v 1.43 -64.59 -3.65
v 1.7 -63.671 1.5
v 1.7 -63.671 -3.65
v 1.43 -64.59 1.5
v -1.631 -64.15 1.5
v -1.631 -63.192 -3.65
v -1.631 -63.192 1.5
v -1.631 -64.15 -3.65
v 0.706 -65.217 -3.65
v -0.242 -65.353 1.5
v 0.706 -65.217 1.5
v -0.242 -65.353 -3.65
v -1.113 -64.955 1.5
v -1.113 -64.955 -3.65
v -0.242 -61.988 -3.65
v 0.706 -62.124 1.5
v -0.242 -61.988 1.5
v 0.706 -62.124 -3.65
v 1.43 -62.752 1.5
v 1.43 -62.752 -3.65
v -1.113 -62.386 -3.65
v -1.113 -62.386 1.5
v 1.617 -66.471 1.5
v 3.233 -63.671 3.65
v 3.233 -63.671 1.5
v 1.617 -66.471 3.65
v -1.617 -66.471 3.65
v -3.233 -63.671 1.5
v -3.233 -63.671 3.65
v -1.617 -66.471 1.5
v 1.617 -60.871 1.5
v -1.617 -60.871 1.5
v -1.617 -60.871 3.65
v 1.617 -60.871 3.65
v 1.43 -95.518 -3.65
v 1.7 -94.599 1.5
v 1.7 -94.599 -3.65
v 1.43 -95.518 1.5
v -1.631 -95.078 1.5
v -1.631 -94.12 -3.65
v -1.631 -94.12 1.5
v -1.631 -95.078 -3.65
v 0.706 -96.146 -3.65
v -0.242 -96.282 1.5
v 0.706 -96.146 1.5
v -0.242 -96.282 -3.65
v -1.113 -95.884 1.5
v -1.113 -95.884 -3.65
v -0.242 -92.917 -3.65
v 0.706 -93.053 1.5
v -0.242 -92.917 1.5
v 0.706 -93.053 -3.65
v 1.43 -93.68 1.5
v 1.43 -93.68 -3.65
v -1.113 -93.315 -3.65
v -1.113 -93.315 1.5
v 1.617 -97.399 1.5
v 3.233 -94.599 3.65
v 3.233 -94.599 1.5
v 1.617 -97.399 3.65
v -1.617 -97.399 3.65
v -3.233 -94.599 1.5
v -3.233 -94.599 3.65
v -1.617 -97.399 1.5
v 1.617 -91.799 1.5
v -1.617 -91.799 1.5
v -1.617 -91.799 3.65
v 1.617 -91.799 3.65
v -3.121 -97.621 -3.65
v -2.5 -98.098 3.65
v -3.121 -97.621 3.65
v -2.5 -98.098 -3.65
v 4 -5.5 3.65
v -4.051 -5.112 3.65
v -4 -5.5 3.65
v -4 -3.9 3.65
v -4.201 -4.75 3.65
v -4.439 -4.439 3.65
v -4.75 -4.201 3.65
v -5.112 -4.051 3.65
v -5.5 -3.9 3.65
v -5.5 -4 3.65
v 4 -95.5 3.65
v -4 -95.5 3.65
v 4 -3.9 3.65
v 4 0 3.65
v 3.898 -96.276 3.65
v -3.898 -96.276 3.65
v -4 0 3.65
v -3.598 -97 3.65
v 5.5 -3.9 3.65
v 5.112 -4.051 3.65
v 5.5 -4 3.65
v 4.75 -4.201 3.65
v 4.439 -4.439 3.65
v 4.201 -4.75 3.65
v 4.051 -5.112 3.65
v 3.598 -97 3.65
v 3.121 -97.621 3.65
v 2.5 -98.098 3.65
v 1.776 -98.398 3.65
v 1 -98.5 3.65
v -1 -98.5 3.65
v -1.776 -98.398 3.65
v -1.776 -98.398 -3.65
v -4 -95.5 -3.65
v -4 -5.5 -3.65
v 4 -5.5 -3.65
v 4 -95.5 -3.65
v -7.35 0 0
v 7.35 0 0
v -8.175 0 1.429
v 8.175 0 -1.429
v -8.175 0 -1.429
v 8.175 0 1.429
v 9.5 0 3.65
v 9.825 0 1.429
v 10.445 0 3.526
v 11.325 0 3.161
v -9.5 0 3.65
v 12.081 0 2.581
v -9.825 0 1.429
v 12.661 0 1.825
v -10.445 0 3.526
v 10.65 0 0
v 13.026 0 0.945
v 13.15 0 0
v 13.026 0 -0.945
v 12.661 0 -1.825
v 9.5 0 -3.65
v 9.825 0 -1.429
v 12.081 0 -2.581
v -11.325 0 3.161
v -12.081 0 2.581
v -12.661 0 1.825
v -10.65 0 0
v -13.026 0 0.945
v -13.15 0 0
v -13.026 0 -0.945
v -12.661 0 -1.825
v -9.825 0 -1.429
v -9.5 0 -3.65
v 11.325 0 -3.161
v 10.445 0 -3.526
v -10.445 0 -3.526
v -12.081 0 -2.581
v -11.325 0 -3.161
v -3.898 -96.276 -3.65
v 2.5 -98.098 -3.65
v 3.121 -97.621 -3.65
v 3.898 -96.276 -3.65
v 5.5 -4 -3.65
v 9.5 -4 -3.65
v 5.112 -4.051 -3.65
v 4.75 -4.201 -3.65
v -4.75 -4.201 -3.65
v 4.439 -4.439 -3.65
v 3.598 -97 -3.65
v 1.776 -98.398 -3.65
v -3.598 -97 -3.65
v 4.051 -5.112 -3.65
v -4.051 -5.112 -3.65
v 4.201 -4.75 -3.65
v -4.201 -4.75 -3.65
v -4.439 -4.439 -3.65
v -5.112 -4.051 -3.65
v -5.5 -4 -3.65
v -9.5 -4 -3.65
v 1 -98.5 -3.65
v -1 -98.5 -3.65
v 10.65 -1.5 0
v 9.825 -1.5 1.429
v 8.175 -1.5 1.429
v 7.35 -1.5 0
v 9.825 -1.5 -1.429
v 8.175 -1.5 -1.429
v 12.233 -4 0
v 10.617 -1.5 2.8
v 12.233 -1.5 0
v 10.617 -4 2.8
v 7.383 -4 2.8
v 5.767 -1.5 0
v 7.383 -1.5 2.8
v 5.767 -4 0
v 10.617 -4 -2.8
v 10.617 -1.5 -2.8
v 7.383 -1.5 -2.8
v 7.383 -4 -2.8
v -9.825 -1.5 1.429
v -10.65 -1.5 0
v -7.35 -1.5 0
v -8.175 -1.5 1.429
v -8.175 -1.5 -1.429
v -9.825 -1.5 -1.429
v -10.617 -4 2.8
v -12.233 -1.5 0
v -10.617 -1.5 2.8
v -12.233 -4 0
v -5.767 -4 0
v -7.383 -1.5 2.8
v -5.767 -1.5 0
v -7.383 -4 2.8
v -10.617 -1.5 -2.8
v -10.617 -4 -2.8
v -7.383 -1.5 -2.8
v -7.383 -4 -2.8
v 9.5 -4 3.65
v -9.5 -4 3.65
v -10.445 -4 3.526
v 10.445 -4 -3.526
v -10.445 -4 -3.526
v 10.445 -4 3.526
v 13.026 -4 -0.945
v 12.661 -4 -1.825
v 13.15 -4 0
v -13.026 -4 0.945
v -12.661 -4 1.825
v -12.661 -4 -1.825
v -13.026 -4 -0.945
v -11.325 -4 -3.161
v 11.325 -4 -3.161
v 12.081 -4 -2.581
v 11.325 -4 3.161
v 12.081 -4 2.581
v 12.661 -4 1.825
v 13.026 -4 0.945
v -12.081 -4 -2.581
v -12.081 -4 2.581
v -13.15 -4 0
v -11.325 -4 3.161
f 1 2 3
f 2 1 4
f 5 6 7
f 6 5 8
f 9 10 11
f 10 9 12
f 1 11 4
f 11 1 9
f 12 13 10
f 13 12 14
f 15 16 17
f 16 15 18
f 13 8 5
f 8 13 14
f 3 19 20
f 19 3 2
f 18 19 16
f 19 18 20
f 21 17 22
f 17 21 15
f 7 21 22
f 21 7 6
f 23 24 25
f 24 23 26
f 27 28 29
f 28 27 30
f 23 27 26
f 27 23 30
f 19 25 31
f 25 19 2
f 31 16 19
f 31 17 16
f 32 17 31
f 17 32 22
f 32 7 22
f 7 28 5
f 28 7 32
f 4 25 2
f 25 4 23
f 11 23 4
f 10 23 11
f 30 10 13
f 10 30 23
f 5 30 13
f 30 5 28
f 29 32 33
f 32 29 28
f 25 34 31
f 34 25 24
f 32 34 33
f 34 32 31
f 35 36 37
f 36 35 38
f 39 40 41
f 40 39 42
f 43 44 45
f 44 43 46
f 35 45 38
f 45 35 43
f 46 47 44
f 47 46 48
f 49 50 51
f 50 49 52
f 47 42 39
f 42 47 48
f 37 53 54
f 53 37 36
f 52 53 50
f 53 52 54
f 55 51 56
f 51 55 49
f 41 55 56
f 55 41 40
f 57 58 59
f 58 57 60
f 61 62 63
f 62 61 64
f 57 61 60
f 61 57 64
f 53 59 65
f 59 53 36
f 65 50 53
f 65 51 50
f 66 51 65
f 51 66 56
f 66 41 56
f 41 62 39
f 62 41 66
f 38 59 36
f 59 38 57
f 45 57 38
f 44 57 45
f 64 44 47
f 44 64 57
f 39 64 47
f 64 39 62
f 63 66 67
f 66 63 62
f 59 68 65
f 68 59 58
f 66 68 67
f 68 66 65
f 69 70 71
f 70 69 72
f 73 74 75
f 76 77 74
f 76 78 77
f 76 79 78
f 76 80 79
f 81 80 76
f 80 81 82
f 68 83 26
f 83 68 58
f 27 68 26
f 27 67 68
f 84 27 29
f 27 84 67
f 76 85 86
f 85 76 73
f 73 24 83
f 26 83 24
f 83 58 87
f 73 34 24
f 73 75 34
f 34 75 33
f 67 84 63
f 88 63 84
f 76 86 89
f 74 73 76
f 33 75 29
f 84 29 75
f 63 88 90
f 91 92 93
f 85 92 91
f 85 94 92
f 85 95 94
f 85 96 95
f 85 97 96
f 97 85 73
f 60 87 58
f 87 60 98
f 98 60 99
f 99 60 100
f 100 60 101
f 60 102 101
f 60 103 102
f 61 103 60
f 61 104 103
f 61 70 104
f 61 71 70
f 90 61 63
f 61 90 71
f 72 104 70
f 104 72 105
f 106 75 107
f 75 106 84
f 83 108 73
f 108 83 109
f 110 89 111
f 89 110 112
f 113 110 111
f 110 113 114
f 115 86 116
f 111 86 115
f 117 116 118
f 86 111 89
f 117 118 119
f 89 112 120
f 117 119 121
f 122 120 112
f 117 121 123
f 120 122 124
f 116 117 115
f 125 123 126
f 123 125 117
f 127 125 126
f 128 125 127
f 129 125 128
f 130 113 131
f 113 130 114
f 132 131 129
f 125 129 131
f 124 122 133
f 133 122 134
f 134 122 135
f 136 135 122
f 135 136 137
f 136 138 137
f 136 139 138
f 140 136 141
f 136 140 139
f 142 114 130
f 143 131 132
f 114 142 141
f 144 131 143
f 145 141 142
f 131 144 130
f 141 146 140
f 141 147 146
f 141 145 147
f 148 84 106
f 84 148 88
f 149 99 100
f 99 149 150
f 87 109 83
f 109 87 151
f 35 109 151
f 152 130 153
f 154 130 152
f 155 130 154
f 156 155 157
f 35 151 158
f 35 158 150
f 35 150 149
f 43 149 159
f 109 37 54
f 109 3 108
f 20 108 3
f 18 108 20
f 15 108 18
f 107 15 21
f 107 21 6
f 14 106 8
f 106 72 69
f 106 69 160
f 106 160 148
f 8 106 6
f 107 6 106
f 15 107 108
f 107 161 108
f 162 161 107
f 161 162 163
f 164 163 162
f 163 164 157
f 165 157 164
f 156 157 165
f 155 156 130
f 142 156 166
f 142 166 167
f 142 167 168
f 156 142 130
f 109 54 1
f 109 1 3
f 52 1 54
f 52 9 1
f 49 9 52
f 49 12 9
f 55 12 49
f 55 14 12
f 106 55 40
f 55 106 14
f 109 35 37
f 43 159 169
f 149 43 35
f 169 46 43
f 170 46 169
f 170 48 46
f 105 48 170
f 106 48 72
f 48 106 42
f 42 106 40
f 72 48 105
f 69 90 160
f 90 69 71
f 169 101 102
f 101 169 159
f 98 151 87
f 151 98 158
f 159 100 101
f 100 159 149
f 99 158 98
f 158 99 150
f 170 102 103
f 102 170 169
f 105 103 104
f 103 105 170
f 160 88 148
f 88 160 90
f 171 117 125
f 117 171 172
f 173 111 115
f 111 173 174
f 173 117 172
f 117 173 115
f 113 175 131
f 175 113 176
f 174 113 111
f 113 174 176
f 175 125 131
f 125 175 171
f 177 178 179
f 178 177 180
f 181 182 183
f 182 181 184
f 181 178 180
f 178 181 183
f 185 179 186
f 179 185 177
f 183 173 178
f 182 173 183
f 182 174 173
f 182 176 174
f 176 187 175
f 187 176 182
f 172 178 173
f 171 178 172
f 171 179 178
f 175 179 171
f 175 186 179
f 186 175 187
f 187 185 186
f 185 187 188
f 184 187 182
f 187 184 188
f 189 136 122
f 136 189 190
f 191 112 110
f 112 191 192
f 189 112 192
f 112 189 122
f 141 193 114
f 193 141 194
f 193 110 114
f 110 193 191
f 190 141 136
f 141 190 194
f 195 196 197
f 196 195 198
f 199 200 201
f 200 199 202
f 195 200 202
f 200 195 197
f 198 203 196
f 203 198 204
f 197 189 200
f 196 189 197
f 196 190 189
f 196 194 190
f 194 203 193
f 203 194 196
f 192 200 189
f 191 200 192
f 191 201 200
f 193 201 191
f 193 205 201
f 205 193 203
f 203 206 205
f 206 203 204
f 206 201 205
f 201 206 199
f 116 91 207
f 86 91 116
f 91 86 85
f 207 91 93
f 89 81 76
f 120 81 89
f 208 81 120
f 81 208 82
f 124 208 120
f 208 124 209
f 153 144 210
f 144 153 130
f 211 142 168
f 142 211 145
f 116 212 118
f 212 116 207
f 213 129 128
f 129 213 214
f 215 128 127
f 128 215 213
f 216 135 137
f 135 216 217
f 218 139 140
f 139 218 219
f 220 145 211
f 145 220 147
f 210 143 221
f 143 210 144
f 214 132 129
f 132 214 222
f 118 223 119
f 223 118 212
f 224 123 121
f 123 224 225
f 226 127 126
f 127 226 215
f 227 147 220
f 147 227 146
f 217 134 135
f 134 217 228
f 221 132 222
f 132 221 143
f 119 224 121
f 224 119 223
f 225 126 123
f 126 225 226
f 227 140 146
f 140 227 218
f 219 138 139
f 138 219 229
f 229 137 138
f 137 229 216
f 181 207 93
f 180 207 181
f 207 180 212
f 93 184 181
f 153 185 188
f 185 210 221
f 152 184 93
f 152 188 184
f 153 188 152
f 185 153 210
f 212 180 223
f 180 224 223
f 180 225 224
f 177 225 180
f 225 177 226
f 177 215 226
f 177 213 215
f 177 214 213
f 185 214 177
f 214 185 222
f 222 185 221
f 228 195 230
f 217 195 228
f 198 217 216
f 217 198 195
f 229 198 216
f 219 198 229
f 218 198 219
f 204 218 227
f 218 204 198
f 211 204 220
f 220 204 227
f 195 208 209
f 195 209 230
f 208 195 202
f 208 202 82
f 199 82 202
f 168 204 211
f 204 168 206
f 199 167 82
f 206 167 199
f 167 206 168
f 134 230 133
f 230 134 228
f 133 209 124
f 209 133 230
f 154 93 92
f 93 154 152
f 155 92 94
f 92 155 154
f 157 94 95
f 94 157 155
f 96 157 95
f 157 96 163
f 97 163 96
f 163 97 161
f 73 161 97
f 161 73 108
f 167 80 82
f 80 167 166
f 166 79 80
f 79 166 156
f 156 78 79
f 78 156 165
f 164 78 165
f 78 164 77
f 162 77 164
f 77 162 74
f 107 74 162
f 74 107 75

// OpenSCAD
// file: lib/sweep.scad
// sweep.scad
//
// This code is copied from
// https://github.com/openscad/list-comprehension-demos
// and
// https://github.com/openscad/scad-utils
// to make hangprinter repo self-contained
// It was included in order to make the worm drive parametric
// In future OpenSCAD (or other script CAD programs)
// worm drives should be will be more easily constructed without
// this user space defined sweep operation.
// See OpenSCAD discussion at:
// https://github.com/openscad/openscad/issues/114

// Look into files
// lists.scad
// X transformations.scad
// linalg.scad
// se3.scad
// so3.scad


// Include modules and fcts:

/// linalg.scad
function vec3(p) = len(p) < 3 ? concat(p,0) : p;
function vec4(p) = let (v3=vec3(p)) len(v3) < 4 ? concat(v3,1) : v3;
function take3(v) = [v[0],v[1],v[2]];
function tail3(v) = [v[3],v[4],v[5]];
function construct_Rt(R,t) = [concat(R[0],t[0]),concat(R[1],t[1]),concat(R[2],t[2]),[0,0,0,1]];

/// so3.scad

function se3_exp_2(t,w) = se3_exp_2_0(t,w,w*w);
function se3_exp_2_0(t,w,theta_sq) =
se3_exp_23(
	so3_exp_2(theta_sq),
	C = (1.0 - theta_sq/20) / 6,
	t=t,w=w);

// Taylor series expansions close to 0
function so3_exp_1(theta_sq) = [
	1 - 1/6*theta_sq,
	0.5
];

function rodrigues_so3_exp(w, A, B) = [
  [1.0 - B*(w[1]*w[1] + w[2]*w[2]), B*(w[0]*w[1]) - A*w[2],          B*(w[0]*w[2]) + A*w[1]],
  [B*(w[0]*w[1]) + A*w[2],          1.0 - B*(w[0]*w[0] + w[2]*w[2]), B*(w[1]*w[2]) - A*w[0]],
  [B*(w[0]*w[2]) - A*w[1],          B*(w[1]*w[2]) + A*w[0],          1.0 - B*(w[0]*w[0] + w[1]*w[1])]
];

function so3_exp_3_0(theta_deg, inv_theta) = [
	sin(theta_deg) * inv_theta,
	(1 - cos(theta_deg)) * (inv_theta * inv_theta)
];

/// se3.scad
function combine_se3_exp(w, ABt) = construct_Rt(rodrigues_so3_exp(w, ABt[0], ABt[1]), ABt[2]);
function se3_exp_1(t,w) = concat(
	so3_exp_1(w*w),
	[t + 0.5 * cross(w,t)]
);

function se3_exp_3(t,w) = se3_exp_3_0(t,w,sqrt(w*w)*180/PI,1/sqrt(w*w));

function se3_exp_23(AB,C,t,w) =
[AB[0], AB[1], t + AB[1] * cross(w,t) + C * cross(w,cross(w,t)) ];

function se3_exp_3_0(t,w,theta_deg,inv_theta) =
se3_exp_23(
	so3_exp_3_0(theta_deg = theta_deg, inv_theta = inv_theta),
	C = (1 - sin(theta_deg) * inv_theta) * (inv_theta * inv_theta),
t=t,w=w);

function se3_exp(mu) = se3_exp_0(t=take3(mu),w=tail3(mu)/180*PI);

function se3_exp_0(t,w) =
combine_se3_exp(w,
// Evaluate by Taylor expansion when near 0
	w*w < 1e-8
	? se3_exp_1(t,w)
	: w*w < 1e-6
	  ? se3_exp_2(t,w)
	  : se3_exp_3(t,w)
);


/// lists.scad
/*!
  Flattens a list one level:

  flatten([[0,1],[2,3]]) => [0,1,2,3]
*/
function flatten(list) = [ for (i = list, v = i) v ];
/*!
  Extracts a subarray from index begin (inclusive) to end (exclusive)

  subarray([1,2,3,4], 1, 2) => [2,3]
*/
function subarray(list,begin=0,end=-1) = [
    let(end = end < 0 ? len(list) : end)
      for (i = [begin : 1 : end-1])
        list[i]
];

/// transformations.scad
//********* Create modifying matrices ***************//
/*!
  Creates a rotation matrix

  xyz = euler angles = rz * ry * rx
  axis = rotation_axis * rotation_angle
*/
function rotation(xyz=undef, axis=undef) =
	xyz != undef && axis != undef ? undef :
	xyz == undef  ? se3_exp([0,0,0,axis[0],axis[1],axis[2]]) :
	len(xyz) == undef ? rotation(axis=[0,0,xyz]) :
	(len(xyz) >= 3 ? rotation(axis=[0,0,xyz[2]]) : identity4()) *
	(len(xyz) >= 2 ? rotation(axis=[0,xyz[1],0]) : identity4()) *
(len(xyz) >= 1 ? rotation(axis=[xyz[0],0,0]) : identity4());

/*!
  Creates a scaling matrix
*/
function scaling(v) = [
	[v[0],0,0,0],
	[0,v[1],0,0],
	[0,0,v[2],0],
	[0,0,0,1],
];

/*!
  Creates a translation matrix
*/
function translation(v) = [
	[1,0,0,v[0]],
	[0,1,0,v[1]],
	[0,0,1,v[2]],
	[0,0,0,1],
];


function project(x) = subarray(x,end=len(x)-1) / x[len(x)-1];

function transform(m, list) = [for (p=list) project(m * vec4(p))];

function to_3d(list) = [ for(v = list) vec3(v) ];

module sweep(shape, path_transforms, closed=false) {

    pathlen = len(path_transforms);
    segments = pathlen + (closed ? 0 : -1);
    shape3d = to_3d(shape);

    function sweep_points() =
      flatten([for (i=[0:pathlen-1])
        transform(path_transforms[i], shape3d)]);

    function loop_faces() = [let (facets=len(shape3d))
        for(s=[0:segments-1], i=[0:facets-1])
          [(s%pathlen) * facets + i,
           (s%pathlen) * facets + (i + 1) % facets,
           ((s + 1) % pathlen) * facets + (i + 1) % facets,
           ((s + 1) % pathlen) * facets + i]];

    bottom_cap = closed ? [] : [[for (i=[len(shape3d)-1:-1:0]) i]];
    top_cap = closed ? [] : [
      [for (i=[0:len(shape3d)-1])
        i+len(shape3d)*(pathlen-1)]];
    polyhedron(points = sweep_points(),
               faces  = concat(loop_faces(),
                               bottom_cap,
                               top_cap),
               convexity=5);
}
// file: lib/parameters.scad
// Parameters shared between modules
Base_th = 2;
Beam_width = 15;
Wiggle = 0.25;
Fat_beam_width = Beam_width + Wiggle;
Beam_length = 400;
Wall_th = 2.5;
Min_beam_width = 12.5;
Max_beam_width = 17.5;
Zip_th = 2;
Zip_h = Zip_th + Max_beam_width - Min_beam_width;
Zip_w = 5.0;
Nema17_cube_width          = 42.43;
Nema17_screw_hole_width    = 43.74; // Opposite corner screws
Nema17_ring_diameter       = 22;
Nema17_cube_height         = 39.36;
Nema17_shaft_height        = 63.65;
Nema17_ring_height         = 2;
Nema17_shaft_radius        = 5/2;

Nema23_cube_width          = 56.4;
Nema23_cube_height         = 54.5;
Nema23_shaft_height        = 100;
Nema23_screw_hole_width    = 66.31; // Opposite corner screws
b608_outer_dia = 22.2; // Should probably be 22.1 for a snug fit with finer printers
b608_width = 7.05;
b608_bore_r = 4;
b608_vgroove_big_r = b608_outer_dia/2 + 2.5;
b608_vgroove_small_r = b608_outer_dia/2 + 0.5;
b608_ugroove_big_r = b608_vgroove_big_r;
b608_ugroove_small_r = b608_vgroove_small_r;
Gap_between_sandwich_and_plate = 1.5 + Base_th; // 1.5 mm for wiggle
Motor_bracket_flerp_r = 6;
Motor_bracket_flerp = 14;
Motor_bracket_cw = Nema17_cube_width + 6;
Motor_bracket_att_ang = 50;
Mounting_screw_d = 3.5;
Mounting_screw_head_d = 14;
Spool_outer_wall_th = 4;

// Corner clamp parameters
Cc_l1 = (Fat_beam_width+2*Wall_th)*2*sqrt(3);
Cc_rad_b = 4;
Cc_action_point_from_mid = Cc_l1/sqrt(3)-2*Cc_rad_b-7;
Cc_plastic_length = sqrt(Cc_action_point_from_mid*Cc_action_point_from_mid
                       - (Cc_action_point_from_mid/2)*(Cc_action_point_from_mid/2));
Eyelet_extra_dist = 0.75;
Eyelet_diameter = 4.30;
Eyelet_flange_diameter = 5.93;

// The distance between the two action points on the mover
Sidelength = Beam_length + 2*Cc_plastic_length;

/////// Gear parameters ////////////
Circular_pitch = 262;
Motor_teeth = 10;
Gear_height = 21.4-3;
Motor_pitch                      = (Motor_teeth*Circular_pitch/360);
Motor_pitch_diametrial           = Motor_teeth/(2*Motor_pitch);
Motor_outer_radius               = Motor_pitch + 1/Motor_pitch_diametrial;
Spool_teeth = 100;
Spool_r = 75;
Spool_height = 8;
Spool_pitch                      = (Spool_teeth*Circular_pitch/360);
Spool_pitch_diametrial           = Spool_teeth/(2*Spool_pitch);
Spool_outer_radius               = Spool_pitch + 1/Spool_pitch_diametrial;
Sep_disc_radius = (161.83+1)/2; // Made to match 255 teeth gt2 pulley + 1
Motor_bracket_depth = Gear_height+1+7+Nema17_ring_height+1+Gap_between_sandwich_and_plate;
Spool_core_flerp0 = 16+3;

/////// Lineroller parameters ////////////
b623_width  = 4;
b623_bore_r = 3/2;
b623_big_ugroove_big_r = (12+3)/2;
b623_big_ugroove_small_r = (10+3)/2;
b623_outer_dia = 10;
b623_ugroove_room_to_grow_r = 1.1;
b608_ugroove_room_to_grow_r = 1.1;
b623_flange_dia = 11.5;
b623_flange_room_to_grow_r = 0.5;

Depth_of_roller_base = 18;
Roller_flerp = 6;
Roller_l = 42;
Roller_fl = (Roller_l - Depth_of_roller_base)/2;

Line_roller_wall_th = 5;

Line_roller_ABCD_winch_h =  Gap_between_sandwich_and_plate
                           + Sep_disc_radius
                           - Spool_r
                           + Depth_of_roller_base/2
                           + b608_vgroove_small_r;

Ptfe_r = 2.1;
Roller_base_r = 8;
Screw_h = 2;
Screw_head_h = 2;
M3_screw_head_d = 5.8;
Spool_center_bearing_wall_th = 5;
Corner_clamp_bearings_center_to_center = max(45, (b623_big_ugroove_big_r + b623_ugroove_room_to_grow_r)*2 + 5);

//// Lineroller anchor parameters /////

Front_bearing_x = -5 - 5;
Move_tower = -12.2;
Lower_bearing_z = 13;
Higher_bearing_z = Lower_bearing_z + Corner_clamp_bearings_center_to_center;

//// Cable Clamp parameters /////
Bit_width = 12;
Cable_r=3.5;

// Belt drive parameters
GT2_belt_width = 6.5;
GT2_gear_height = GT2_belt_width + 2;
GT2_motor_gear_height = 16;
GT2_motor_gear_outer_dia = 16;
GT2_spool_gear_outer_dia = 161.82; // Echoed from GT2_spool_gear.scad
GT2_spool_gear_teeth = 255;
GT2_motor_gear_teeth = 20;
Torx_depth = GT2_gear_height/2;
Belt_roller_h = 56;
Belt_thickness = 1.4;

Belt_roller_space_between_walls = 2*b623_width + 0.8;
Belt_roller_wall_th = (Depth_of_roller_base - Belt_roller_space_between_walls)/2+2;
Belt_roller_top_adj_screw_x = Depth_of_roller_base/2-3.7;
Belt_roller_top_adj_screw_y = Belt_roller_space_between_walls/2+2;
Belt_roller_containing_cube_ywidth = Belt_roller_space_between_walls+8.5;
Belt_roller_containing_cube_xwidth = 14;
Belt_roller_insert_h = 18;

Sandwich_ABCD_width = 2*(1+Spool_height) + GT2_gear_height;
Sandwich_I_width = 5*(1+Spool_height) + GT2_gear_height;
Spool_core_halve_width = 14.3;
Spool_core_impression_in_spool_cover = 0;
Spool_cover_bottom_th = 1.5;
Spool_cover_shoulder = 2;
Spool_core_cover_adj = Spool_cover_shoulder+Spool_cover_bottom_th-Spool_core_impression_in_spool_cover;
Spool_core_tot_length = 136.458;
Spool_cover_outer_r = Sep_disc_radius + 2;
Gap_between_sep_disc_and_spool_cover = 0.55;

Smooth_rod_length_ABCD = Sandwich_ABCD_width + 2*(Spool_core_halve_width-Spool_core_impression_in_spool_cover + Spool_cover_bottom_th + Spool_cover_shoulder);
Smooth_rod_length_I = Sandwich_I_width + 2*(Spool_core_halve_width-Spool_core_impression_in_spool_cover + Spool_cover_bottom_th + Spool_cover_shoulder);
echo("Smooth_rod_length_ABCD", Smooth_rod_length_ABCD);
echo("Smooth_rod_length_I", Smooth_rod_length_I);

Spool_cover_tot_height = Spool_cover_bottom_th+Spool_cover_shoulder+1+Spool_height;
Spool_cover_I_left_tot_height = Spool_cover_shoulder+Spool_cover_bottom_th+2*(Spool_height+1);
Spool_cover_I_right_tot_height = Spool_cover_shoulder+Spool_cover_bottom_th+3*(Spool_height+1);

spd = Spool_height+GT2_gear_height;
// Horizontal_deflector_cube_y_size must be exact this number
// because we want to deflect AB-lines
// 60 degrees on the ceiling unit, and we want to put two
// deflectors in a row and get a distance between bearings
// that maintain the distance d when deflecting 60 degrees
Horizontal_deflector_cube_y_size = (2/sqrt(3))*spd;

Belt_roller_bearing_xpos = Sep_disc_radius + b623_outer_dia/2+Belt_thickness;



Pen_holder_w = 55;
Pen_holder_rail_w = 36;
Pen_holder_bottom_th = 7;

u_width = 7;
Stick_extra = 5;
Stick_length = b623_big_ugroove_big_r*2 + 7*2 + 1*2 + Stick_extra;
Stick_d = 12.5;

Ram_1000_3dpotter_tube_inner_d = 70;
Ram_1000_3dpotter_tube_outer_d = Ram_1000_3dpotter_tube_inner_d + 2*3.3;
Ram_1000_3dpotter_top_square_width = 31.7;

// 6 mm nozzle
// Wasp_xl30_funnel_d1 = 7.2;
// Wasp_xl30_funnel_d2 = 26.3;
// Wasp_xl30_funnel_h = 18.59;

// 4 mm nozzle
Wasp_xl30_funnel_d1 = 5.2;
Wasp_xl30_funnel_d2 = 26.0;
Wasp_xl30_funnel_h = 17.7;



// Colors
Color0 = "sandybrown";
Color0_alpha = 0.55;
Color1 = [0.81,0.73,0.05];
Color1_alpha = 1.0;
Color2 = [0.99,0.99,0.99];
Color2_alpha = 0.8;
Spool_cover_alpha = 0.5;
Color_carbon = [0.2,0.2,0.2];
//Color_line = [0.9,0.35,0.35];
Color_line=[1.0,0.2,0.2];
Color_motor=[0.5,0.4,0.9];
// main file
include <lib/parameters.scad>
use <lib/util.scad>

//translate([-2.79-6,-4,2.5+145-42.65])
//  rotate([90,0,90])
//    %import("../stl/extruder_holder.stl");

//translate([0,0,-10.4-26.2-8-2])
//bltouch();
module bltouch(){
  cylinder(d=2, h=11);
  // The pin when fully stretched is 10.4 mm long
  translate([0,0,10.4])
    difference(){
      union(){
        translate([-12.61/2, 0, 0])
          cube([12.61, 12.61/2, 26.2]);
        cylinder(d=12.61, h=26.2);
        cylinder(d=10.7, h=26.2+8);
        translate([0,0,26.2+8]){
          for(k=[0,1]) mirror([k,0,0])
            linear_extrude(height=2)
              difference(){
                hull(){
                  translate([7.2/2, -10.6/2])
                    square([0.1, 10.6]);
                  translate([18/2, 0])
                    circle(r=3.65, $fn=6*4);
                }
                translate([18/2, 0])
                  circle(d=3.2);
              }
          translate([-7.2/2, -10.6/2])
            cube([7.2, 10.6, 2]);
        }
      }
      rotate_extrude()
        translate([9/2*sqrt(2)+7.5/2,-(9*sqrt(2))/2])
        rotate([0,0,45])
        square(9);
    }
}


rotate([90,0,0])
//bltouch_arm(len = 98.5 - 49);
bltouch_arm(len = 98.5);
module bltouch_arm(len = 98.5){
  difference(){
    translate([-8/2, 3.65, 0])
      rotate([90,0,0])
        ydir_rounded_cube2([8, len, 2*3.65], 3, $fn=6*4);
    for(k=[-1,1])
      translate([0,0,len+1.85-Nema17_cube_width/2+k*(Nema17_screw_hole_width/sqrt(2))/2])
        rotate([90,0,0]){
          cylinder(d=3.4, h=8, center=true, $fn=11);
          translate([0,0,-6.5])
            nut(5);
        }
  }
  difference(){
    translate([-(19+2*3.65)/2, -3.65, 0])
      rounded_cube2([19+2*3.65, 2*3.65, 4], r=3.65, $fn=6*4);
    for(k=[0,1]) mirror([k,0,0])
      translate([18/2, 0, -1]){
        cylinder(d=3.3, h=6);
        translate([0,0,2.5])
          nut(5);
      }
  }
  for(k=[0,1]) mirror([k,0,0])
    translate([4,0,4])
      rotate([90,0,0])
        translate([0,0,-3.65])
          inner_round_corner(r=1.5, h=2*3.65, $fn=6*4);
}
